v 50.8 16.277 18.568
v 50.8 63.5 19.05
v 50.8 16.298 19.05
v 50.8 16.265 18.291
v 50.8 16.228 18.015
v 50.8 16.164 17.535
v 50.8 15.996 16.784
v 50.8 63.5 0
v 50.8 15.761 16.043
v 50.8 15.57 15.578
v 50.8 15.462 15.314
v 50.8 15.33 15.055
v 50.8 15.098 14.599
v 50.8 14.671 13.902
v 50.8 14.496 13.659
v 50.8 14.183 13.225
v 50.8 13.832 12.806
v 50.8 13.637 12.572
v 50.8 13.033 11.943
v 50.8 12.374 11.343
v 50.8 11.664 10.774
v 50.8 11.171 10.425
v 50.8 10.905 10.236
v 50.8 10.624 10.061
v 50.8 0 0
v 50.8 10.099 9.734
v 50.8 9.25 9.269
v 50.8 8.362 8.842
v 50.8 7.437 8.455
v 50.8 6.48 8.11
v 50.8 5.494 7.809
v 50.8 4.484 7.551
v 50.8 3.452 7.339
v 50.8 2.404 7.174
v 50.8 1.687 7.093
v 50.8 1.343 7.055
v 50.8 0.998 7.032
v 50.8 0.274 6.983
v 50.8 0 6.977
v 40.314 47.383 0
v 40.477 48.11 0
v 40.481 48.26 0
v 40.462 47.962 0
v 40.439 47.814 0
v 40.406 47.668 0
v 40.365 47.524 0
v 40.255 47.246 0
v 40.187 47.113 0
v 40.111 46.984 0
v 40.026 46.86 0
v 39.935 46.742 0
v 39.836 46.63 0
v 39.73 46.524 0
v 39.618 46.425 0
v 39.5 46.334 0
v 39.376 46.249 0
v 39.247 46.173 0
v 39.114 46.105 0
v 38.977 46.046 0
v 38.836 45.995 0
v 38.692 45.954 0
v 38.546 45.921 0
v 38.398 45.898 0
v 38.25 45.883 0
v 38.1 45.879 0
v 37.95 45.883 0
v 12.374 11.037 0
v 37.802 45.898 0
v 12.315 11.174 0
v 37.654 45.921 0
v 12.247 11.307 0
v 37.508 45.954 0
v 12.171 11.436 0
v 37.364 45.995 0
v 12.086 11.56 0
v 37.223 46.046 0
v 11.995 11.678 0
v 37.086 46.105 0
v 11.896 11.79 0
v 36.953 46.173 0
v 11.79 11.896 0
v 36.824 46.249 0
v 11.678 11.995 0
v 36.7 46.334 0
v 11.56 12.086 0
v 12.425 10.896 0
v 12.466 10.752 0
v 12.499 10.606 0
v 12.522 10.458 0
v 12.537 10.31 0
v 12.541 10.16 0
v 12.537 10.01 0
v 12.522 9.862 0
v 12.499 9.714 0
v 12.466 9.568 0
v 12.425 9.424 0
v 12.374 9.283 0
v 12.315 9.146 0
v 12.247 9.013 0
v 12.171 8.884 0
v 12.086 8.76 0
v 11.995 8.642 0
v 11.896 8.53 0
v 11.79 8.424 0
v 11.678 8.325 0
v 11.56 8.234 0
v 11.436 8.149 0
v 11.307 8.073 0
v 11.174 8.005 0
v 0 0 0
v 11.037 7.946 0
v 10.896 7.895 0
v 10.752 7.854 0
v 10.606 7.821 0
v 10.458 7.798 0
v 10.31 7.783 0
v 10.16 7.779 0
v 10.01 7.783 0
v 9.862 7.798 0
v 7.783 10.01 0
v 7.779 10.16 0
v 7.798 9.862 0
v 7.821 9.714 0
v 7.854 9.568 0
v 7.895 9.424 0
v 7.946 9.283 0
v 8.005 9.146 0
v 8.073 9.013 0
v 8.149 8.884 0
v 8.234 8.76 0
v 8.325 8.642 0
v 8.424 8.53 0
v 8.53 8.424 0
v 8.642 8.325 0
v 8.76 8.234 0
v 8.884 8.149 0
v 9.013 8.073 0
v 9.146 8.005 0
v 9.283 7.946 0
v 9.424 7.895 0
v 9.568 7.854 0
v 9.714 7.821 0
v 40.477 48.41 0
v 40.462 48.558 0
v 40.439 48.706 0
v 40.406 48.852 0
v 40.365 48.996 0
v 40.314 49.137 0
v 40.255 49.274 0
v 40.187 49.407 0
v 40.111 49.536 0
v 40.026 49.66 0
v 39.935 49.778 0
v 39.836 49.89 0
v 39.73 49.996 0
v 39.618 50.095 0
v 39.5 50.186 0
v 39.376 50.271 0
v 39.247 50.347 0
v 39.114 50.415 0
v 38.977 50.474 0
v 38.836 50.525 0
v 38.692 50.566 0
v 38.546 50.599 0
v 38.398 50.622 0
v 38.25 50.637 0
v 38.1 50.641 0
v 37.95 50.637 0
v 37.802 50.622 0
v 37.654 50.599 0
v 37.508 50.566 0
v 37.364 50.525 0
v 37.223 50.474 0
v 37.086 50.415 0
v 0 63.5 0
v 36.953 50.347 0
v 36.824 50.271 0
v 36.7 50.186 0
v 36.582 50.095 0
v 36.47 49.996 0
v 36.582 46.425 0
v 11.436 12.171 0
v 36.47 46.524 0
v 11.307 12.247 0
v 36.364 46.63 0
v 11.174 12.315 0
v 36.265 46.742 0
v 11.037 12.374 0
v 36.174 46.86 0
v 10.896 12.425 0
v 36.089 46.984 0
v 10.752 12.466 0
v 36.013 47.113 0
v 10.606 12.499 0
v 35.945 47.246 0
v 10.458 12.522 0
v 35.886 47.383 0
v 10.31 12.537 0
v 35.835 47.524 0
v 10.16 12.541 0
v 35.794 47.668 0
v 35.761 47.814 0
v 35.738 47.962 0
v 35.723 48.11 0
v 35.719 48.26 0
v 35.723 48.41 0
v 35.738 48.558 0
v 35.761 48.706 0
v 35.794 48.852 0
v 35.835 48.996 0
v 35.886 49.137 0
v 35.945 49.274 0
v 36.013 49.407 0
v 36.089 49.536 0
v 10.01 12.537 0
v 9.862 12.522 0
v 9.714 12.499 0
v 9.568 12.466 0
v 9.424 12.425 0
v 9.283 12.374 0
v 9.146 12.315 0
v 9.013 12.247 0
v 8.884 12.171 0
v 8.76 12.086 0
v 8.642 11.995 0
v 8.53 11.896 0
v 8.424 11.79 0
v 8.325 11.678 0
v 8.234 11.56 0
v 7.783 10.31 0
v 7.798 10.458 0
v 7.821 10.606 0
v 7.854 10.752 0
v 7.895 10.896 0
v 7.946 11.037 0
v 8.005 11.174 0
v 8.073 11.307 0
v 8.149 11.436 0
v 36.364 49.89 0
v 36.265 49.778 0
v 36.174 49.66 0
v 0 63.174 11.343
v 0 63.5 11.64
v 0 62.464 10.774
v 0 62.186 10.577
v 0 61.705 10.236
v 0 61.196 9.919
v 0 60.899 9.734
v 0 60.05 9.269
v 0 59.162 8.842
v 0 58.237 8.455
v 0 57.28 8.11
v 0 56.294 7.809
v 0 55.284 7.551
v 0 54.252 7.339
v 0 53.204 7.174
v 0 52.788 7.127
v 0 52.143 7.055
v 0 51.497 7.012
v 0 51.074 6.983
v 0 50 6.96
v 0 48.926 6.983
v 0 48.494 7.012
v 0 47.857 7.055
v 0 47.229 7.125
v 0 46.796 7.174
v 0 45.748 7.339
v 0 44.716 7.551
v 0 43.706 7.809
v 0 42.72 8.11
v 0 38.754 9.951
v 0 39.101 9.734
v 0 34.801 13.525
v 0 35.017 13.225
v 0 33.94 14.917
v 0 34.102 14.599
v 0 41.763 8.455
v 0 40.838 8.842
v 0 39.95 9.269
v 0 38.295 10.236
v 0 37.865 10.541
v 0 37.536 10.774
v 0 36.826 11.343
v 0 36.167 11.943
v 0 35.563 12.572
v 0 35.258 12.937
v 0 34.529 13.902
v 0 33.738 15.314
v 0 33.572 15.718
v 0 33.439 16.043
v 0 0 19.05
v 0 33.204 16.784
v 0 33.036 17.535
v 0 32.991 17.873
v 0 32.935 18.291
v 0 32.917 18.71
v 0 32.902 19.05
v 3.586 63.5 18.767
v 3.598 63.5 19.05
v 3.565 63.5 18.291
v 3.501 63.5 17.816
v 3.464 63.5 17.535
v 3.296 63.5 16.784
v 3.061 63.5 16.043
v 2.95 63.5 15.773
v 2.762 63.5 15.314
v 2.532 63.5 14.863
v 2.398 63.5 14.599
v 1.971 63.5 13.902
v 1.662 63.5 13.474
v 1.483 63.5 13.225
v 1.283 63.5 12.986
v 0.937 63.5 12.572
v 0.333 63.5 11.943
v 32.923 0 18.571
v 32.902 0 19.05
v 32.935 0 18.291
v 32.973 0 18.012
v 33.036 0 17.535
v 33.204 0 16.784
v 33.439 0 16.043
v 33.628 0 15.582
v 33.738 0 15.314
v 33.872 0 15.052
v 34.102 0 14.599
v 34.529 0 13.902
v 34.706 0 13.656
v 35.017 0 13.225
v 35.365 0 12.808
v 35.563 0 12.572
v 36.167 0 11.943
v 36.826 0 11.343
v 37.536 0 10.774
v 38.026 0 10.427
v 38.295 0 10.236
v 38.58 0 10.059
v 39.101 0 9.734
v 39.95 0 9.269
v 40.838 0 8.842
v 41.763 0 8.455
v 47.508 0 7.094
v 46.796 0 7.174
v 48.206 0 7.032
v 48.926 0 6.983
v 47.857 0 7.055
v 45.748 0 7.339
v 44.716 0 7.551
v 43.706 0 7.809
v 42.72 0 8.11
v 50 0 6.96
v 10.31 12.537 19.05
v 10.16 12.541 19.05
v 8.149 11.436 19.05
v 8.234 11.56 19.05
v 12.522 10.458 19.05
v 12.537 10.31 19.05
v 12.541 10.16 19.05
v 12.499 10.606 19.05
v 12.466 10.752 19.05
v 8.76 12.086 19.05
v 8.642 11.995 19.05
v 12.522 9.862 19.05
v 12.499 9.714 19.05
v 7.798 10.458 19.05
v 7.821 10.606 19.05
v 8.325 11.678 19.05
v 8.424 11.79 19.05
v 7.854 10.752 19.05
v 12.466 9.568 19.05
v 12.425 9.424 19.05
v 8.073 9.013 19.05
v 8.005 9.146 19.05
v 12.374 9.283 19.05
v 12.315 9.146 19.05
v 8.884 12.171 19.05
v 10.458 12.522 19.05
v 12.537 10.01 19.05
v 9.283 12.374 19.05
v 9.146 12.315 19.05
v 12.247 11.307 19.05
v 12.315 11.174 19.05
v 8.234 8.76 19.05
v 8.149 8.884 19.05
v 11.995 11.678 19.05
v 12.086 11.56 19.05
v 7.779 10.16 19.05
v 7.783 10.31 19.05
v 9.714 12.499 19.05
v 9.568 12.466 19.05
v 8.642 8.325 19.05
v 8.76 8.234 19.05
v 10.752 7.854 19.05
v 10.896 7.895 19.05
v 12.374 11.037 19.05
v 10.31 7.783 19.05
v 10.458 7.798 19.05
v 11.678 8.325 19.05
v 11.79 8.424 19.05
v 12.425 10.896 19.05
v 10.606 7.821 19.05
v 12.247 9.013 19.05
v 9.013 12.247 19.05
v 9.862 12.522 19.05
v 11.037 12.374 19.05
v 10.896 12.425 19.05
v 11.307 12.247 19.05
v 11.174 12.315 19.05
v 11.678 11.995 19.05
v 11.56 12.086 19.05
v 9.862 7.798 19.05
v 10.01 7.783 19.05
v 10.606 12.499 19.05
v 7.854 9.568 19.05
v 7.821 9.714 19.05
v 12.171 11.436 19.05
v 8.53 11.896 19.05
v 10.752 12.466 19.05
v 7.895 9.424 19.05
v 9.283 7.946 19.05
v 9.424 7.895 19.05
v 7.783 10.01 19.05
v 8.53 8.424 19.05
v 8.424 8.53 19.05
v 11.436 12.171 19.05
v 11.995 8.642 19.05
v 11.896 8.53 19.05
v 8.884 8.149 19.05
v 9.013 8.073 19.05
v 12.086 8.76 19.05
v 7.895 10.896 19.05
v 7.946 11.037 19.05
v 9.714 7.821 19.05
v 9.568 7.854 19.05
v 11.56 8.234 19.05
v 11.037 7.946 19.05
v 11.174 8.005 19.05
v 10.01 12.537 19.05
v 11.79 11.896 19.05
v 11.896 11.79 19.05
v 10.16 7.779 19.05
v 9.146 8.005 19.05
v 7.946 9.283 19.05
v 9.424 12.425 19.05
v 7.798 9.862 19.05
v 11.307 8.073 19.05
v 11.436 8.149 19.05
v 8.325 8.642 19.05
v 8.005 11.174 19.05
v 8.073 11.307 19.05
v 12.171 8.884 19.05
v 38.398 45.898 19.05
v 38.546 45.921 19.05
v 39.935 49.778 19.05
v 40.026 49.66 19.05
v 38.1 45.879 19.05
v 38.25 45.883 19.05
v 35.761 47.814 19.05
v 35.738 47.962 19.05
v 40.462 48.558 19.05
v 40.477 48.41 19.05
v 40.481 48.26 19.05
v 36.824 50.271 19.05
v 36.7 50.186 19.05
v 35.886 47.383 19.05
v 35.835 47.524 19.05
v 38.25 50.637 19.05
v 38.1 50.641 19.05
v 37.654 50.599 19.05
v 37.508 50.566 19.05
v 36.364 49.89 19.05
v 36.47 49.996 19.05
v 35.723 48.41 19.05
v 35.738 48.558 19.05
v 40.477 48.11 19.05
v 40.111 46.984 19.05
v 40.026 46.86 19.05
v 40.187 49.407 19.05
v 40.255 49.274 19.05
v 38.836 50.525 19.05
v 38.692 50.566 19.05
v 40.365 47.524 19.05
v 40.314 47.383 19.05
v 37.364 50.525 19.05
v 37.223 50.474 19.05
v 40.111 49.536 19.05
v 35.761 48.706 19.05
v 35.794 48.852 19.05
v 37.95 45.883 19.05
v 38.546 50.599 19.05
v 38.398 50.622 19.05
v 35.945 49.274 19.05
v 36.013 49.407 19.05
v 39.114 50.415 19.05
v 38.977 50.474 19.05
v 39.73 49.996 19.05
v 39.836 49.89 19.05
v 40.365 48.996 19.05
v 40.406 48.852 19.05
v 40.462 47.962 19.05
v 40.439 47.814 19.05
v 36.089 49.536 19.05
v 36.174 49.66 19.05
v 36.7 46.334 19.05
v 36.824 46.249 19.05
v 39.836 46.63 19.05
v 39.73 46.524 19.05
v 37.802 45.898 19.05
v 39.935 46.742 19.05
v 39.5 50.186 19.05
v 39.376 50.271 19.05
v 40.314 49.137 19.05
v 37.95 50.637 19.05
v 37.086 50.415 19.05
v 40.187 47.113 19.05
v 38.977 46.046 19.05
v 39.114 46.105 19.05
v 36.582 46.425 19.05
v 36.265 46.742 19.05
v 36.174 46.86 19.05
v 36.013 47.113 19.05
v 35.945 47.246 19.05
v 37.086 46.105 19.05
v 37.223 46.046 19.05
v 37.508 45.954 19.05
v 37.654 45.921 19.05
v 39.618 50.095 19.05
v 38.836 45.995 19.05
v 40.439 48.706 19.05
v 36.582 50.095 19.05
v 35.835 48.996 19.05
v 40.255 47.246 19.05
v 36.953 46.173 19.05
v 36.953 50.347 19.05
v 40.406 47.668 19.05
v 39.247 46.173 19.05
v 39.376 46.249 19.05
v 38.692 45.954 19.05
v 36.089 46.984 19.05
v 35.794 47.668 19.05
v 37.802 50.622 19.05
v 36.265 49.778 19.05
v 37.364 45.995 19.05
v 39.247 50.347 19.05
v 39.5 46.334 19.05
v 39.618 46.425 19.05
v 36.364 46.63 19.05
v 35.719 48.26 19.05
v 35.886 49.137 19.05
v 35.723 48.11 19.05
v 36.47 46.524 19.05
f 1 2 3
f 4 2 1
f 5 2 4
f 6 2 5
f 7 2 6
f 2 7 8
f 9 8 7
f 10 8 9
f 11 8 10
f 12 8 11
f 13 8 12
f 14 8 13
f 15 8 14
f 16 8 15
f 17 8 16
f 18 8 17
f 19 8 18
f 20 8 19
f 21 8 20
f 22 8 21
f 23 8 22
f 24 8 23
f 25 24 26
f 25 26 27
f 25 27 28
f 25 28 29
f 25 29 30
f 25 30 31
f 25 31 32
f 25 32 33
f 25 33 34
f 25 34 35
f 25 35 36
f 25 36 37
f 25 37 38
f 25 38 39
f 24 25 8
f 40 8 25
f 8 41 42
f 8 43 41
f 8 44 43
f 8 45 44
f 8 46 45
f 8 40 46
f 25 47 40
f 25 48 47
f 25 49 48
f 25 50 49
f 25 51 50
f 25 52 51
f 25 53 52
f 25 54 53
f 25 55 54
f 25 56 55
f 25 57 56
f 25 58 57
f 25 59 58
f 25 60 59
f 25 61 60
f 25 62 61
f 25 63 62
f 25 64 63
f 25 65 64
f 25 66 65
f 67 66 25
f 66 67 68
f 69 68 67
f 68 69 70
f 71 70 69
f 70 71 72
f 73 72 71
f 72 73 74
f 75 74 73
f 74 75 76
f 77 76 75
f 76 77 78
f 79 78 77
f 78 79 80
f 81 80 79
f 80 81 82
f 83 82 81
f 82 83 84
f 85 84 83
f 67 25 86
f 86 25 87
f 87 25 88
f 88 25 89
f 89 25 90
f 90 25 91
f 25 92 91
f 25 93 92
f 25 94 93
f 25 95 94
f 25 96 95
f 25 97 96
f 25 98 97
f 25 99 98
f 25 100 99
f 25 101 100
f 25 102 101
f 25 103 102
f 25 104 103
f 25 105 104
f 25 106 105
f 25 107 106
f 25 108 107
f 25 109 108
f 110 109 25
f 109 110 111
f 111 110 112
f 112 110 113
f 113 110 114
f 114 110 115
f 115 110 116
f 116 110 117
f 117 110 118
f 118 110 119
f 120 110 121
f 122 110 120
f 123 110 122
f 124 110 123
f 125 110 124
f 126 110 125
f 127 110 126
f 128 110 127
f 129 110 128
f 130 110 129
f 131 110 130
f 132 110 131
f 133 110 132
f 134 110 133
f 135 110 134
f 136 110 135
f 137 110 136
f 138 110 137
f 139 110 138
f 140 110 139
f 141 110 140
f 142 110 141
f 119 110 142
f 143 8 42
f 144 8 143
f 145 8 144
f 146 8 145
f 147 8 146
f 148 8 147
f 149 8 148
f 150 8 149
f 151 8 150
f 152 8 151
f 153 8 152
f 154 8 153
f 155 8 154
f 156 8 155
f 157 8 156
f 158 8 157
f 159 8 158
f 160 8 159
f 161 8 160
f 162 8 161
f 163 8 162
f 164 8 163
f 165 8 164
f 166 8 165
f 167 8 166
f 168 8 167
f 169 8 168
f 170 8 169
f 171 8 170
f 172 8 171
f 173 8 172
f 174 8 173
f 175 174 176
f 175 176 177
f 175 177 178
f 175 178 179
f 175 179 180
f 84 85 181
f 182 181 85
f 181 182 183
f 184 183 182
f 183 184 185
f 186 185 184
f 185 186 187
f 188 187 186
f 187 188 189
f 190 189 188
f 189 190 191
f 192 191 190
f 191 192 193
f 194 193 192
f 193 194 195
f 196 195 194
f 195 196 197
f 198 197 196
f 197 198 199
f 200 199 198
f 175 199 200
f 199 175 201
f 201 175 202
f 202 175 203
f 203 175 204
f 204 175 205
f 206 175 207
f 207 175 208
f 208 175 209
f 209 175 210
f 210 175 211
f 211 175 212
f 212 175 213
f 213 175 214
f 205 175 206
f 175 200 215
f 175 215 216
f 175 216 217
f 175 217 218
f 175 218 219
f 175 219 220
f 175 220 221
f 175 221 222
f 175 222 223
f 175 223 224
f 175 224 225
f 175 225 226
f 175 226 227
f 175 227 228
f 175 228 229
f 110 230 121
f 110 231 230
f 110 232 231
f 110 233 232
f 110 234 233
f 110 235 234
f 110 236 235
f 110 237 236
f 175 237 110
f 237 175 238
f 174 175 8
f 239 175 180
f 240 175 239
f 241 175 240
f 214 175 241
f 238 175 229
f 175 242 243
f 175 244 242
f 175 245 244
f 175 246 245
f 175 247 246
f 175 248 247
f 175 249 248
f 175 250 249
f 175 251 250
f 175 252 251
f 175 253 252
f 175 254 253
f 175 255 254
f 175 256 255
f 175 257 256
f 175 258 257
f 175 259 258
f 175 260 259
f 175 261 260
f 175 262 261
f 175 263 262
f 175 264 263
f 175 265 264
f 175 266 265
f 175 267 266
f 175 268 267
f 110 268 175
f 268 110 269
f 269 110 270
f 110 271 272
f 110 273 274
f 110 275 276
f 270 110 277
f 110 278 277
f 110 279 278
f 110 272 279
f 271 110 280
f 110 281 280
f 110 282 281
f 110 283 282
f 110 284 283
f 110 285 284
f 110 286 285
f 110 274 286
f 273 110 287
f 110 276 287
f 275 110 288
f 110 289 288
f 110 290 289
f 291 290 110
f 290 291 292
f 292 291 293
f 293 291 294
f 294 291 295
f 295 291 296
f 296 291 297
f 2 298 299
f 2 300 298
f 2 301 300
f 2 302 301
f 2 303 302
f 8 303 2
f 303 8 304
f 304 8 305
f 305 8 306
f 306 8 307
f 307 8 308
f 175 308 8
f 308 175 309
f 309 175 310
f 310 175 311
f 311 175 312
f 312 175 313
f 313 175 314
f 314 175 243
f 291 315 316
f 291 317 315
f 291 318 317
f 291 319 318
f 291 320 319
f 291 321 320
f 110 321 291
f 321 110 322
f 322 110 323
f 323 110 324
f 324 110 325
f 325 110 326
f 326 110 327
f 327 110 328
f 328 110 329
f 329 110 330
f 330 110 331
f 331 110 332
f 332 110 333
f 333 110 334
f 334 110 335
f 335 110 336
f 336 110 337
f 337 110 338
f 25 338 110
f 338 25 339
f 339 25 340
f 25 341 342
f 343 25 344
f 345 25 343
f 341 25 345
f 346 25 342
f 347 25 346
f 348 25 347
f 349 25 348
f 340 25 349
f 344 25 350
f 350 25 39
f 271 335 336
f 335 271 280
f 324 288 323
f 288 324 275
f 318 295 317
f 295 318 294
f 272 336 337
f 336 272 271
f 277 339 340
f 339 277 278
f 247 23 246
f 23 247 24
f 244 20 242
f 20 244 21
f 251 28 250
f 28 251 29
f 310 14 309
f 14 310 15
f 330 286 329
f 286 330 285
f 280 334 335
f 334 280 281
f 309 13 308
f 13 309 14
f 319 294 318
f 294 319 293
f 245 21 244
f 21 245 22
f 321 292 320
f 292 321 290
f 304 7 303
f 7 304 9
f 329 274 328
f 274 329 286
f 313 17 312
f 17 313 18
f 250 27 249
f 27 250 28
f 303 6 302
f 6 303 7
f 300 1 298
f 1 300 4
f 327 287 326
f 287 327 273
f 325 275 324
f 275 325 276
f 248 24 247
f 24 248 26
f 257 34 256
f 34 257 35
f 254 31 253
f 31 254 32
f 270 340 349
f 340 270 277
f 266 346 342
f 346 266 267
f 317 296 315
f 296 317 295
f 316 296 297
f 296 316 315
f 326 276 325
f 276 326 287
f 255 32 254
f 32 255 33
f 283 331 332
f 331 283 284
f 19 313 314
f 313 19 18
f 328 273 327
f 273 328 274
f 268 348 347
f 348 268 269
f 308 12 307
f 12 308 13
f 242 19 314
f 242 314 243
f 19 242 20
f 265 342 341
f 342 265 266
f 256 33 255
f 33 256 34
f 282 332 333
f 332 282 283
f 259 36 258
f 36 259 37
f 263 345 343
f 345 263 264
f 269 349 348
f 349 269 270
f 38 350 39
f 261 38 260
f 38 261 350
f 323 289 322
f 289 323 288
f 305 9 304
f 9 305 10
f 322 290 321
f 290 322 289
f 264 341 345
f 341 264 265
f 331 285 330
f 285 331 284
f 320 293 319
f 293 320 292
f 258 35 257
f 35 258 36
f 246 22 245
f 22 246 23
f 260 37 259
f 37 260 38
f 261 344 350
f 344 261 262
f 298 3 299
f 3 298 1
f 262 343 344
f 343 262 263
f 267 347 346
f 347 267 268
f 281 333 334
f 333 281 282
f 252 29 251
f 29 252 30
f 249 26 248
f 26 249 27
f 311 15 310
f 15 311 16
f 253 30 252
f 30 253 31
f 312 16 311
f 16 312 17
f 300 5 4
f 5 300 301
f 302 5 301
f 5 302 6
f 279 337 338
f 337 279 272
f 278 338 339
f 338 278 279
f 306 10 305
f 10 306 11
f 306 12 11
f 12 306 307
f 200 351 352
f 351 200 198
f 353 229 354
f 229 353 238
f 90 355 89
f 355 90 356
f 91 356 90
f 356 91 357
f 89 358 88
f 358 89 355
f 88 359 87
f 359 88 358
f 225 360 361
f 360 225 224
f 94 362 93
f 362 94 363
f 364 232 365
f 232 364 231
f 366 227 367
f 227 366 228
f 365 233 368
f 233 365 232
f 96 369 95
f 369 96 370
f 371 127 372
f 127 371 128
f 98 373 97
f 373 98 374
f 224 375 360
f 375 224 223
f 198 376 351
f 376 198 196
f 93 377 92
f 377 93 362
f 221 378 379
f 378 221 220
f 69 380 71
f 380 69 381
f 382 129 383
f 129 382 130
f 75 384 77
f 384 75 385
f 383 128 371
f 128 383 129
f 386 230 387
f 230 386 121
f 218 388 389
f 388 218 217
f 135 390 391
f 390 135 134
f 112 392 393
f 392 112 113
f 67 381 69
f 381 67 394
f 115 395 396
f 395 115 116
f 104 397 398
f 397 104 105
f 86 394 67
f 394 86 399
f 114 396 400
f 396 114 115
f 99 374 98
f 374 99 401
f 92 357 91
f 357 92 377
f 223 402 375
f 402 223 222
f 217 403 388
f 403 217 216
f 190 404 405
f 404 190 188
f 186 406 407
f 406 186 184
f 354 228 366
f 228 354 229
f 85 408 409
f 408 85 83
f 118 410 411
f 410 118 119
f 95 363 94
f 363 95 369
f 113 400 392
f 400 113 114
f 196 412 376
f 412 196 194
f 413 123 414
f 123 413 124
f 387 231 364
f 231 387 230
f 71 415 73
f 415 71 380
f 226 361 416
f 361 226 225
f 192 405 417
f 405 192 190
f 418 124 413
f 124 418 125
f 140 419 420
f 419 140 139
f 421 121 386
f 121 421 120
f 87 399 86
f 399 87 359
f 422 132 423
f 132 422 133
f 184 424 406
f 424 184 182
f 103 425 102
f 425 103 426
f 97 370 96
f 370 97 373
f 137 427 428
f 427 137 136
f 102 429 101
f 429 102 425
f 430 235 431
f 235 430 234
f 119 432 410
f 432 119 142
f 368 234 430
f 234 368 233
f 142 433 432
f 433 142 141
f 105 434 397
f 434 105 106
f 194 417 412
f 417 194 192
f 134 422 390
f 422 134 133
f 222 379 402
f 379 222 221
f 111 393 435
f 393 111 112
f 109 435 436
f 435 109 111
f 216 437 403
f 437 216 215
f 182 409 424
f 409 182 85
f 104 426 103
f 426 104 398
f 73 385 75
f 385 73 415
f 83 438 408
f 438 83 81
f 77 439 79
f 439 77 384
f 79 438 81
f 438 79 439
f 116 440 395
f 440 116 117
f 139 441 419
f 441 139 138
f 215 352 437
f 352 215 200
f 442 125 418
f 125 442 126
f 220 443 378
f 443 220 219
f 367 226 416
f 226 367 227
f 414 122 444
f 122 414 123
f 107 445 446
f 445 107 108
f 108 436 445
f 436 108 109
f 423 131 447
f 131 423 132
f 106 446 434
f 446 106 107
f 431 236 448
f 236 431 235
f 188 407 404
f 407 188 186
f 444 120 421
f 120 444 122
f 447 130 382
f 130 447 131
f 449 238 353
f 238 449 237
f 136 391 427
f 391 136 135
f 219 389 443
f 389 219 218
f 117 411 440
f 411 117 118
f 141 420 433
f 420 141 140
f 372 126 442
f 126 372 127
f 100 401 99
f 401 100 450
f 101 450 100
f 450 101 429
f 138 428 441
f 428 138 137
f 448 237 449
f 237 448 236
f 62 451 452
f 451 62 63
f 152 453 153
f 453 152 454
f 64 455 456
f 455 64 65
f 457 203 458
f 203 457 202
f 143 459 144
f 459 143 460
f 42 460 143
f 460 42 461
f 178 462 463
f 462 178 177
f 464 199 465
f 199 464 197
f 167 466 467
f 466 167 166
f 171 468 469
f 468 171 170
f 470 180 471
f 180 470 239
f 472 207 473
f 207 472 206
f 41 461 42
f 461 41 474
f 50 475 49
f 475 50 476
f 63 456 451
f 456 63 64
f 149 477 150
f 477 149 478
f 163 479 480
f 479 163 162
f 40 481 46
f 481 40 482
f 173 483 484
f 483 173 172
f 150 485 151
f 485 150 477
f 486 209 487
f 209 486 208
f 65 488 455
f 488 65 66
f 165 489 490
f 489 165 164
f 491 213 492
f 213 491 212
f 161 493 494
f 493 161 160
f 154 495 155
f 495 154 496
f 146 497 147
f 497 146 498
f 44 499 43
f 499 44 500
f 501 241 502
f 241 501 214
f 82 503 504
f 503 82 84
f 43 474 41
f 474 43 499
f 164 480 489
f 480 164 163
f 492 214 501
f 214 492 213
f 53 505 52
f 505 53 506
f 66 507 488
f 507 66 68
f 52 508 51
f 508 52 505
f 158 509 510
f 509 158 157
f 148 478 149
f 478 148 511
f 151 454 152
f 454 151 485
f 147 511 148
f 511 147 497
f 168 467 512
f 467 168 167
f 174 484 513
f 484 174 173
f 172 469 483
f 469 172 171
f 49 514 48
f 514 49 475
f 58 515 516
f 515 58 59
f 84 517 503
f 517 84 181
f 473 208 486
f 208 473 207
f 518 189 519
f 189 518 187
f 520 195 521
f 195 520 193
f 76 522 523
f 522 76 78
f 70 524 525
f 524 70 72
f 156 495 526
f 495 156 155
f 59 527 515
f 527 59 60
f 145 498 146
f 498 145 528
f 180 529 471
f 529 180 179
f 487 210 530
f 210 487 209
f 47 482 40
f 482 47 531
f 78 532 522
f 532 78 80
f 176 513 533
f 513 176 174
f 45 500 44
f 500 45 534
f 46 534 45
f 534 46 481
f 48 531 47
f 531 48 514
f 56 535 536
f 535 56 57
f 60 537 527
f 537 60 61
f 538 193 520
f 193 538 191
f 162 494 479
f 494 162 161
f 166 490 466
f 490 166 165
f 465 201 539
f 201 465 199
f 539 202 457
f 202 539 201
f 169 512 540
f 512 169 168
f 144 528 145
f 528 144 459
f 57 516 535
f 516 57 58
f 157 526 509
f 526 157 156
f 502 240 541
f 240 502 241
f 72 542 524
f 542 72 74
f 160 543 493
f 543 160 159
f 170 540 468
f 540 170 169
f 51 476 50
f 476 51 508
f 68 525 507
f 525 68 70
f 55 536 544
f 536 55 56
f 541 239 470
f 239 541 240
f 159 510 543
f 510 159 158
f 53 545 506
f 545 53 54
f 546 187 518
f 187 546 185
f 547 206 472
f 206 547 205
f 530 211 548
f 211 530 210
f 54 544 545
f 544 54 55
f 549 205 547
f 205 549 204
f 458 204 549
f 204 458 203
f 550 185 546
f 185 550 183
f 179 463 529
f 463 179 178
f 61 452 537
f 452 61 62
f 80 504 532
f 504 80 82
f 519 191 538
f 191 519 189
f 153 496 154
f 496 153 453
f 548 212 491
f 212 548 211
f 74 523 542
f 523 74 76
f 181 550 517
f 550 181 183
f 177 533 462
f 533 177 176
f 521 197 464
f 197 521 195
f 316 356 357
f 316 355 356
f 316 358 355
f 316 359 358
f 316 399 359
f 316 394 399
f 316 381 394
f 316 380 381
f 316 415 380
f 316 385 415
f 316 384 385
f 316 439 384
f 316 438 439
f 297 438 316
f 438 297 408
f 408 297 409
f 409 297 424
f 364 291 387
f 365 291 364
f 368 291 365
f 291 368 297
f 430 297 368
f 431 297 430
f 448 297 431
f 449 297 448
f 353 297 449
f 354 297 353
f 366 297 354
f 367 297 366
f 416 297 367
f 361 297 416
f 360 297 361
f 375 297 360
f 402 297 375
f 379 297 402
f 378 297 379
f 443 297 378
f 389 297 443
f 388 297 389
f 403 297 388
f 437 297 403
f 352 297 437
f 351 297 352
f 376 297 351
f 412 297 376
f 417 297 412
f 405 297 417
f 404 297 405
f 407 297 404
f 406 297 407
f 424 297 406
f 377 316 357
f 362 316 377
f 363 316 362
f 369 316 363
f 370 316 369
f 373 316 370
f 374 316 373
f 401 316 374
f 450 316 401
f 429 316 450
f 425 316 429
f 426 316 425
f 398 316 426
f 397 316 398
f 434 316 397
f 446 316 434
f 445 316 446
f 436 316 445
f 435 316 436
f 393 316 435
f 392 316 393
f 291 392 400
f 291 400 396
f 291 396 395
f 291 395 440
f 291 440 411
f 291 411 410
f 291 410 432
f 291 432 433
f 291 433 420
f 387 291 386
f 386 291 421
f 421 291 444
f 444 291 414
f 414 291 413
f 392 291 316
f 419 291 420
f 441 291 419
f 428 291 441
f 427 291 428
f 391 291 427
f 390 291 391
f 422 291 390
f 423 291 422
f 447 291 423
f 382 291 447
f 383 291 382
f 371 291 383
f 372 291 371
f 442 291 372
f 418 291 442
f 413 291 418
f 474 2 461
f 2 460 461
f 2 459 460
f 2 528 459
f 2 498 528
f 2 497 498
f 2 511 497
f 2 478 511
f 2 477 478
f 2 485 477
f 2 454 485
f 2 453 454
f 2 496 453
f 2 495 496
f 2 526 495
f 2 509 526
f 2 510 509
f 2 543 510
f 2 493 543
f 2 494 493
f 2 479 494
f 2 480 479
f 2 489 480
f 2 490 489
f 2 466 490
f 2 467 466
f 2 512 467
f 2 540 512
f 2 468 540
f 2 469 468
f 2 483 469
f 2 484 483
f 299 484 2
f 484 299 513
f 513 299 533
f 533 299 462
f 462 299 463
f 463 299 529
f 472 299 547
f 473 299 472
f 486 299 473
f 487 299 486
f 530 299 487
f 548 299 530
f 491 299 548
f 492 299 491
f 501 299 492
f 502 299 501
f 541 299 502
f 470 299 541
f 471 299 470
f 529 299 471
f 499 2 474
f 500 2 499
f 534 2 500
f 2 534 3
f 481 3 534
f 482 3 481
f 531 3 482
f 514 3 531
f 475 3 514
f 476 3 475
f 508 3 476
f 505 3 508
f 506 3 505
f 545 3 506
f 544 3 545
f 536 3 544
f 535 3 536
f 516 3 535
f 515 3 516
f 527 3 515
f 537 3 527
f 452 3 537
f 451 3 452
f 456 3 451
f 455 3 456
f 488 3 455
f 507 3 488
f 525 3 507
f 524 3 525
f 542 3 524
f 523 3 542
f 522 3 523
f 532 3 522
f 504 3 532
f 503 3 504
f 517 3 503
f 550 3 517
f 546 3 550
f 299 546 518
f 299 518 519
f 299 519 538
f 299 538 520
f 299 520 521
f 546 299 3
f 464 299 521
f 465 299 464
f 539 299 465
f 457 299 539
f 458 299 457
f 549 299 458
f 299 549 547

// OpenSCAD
/* OpenSCAD file for my microscope light bracket
 * Tom Trebisky  10-4-2024
 */

/* I make all my measurements in inches.
 * We need to convert to mm so the STL file will be in mm.
 */
mmpi = 25.4;
function mm(x) = x * mmpi;

l = mm ( 2.0 );		// size front to back
w = mm ( 1.5 );		// width side to side
h = mm ( 2.5 );		// height top to bottom

l_diam = mm ( 0.952 );	// LED housing diameter
l_len = mm ( 10.0 );
l_shift = mm ( -4.0);

d_diam = mm ( 3.0 / 16.0 );
d_len = w + mm ( 1.0 );
d_shift = mm ( -0.5 );

// locations of drill holes
x1 = mm ( 0.4 );
y1 = mm ( 0.4 );

x2 = mm ( 1.5 );
y2 = mm ( 1.9 );

// =======================================================

// rotation angles  [x, y, z]
// The X axis is to the right, this rotates CCW around it.
// The Y axis is straight backward, this rotates CCW around it.
// The Z axis is up, this rotates CCW around it
// The rotations happen in the order X, Y, then Z
// if you want a different order use several rotate commands

module drill (x, y) {
    translate ( [ x, y, d_shift] )
	cylinder ( d=d_diam, h=d_len, $fn=100 );
}

// hole for the LED
module lhole () {
    translate ( [ 0, 50, w/2] )
	rotate ( [90, 0, 45 ] )
	translate ( [0, 0, l_shift] )
	cylinder ( d=l_diam, h=l_len, $fn=100 );
}

// a big cube to slice off half of the object
// (we will print a right half and a left half seperately)
module chop () {
	translate ( [ -50, -50, w/2 ] )
	cube ( [ l+100, h+100, w ] );
}

// union () { }

difference () {
	difference () {
		cube ( [ l, h, w ] );
		lhole ();
		drill ( x1, y1 );
		drill ( x2, y2 );
	}
	chop ();
}

// THE END
